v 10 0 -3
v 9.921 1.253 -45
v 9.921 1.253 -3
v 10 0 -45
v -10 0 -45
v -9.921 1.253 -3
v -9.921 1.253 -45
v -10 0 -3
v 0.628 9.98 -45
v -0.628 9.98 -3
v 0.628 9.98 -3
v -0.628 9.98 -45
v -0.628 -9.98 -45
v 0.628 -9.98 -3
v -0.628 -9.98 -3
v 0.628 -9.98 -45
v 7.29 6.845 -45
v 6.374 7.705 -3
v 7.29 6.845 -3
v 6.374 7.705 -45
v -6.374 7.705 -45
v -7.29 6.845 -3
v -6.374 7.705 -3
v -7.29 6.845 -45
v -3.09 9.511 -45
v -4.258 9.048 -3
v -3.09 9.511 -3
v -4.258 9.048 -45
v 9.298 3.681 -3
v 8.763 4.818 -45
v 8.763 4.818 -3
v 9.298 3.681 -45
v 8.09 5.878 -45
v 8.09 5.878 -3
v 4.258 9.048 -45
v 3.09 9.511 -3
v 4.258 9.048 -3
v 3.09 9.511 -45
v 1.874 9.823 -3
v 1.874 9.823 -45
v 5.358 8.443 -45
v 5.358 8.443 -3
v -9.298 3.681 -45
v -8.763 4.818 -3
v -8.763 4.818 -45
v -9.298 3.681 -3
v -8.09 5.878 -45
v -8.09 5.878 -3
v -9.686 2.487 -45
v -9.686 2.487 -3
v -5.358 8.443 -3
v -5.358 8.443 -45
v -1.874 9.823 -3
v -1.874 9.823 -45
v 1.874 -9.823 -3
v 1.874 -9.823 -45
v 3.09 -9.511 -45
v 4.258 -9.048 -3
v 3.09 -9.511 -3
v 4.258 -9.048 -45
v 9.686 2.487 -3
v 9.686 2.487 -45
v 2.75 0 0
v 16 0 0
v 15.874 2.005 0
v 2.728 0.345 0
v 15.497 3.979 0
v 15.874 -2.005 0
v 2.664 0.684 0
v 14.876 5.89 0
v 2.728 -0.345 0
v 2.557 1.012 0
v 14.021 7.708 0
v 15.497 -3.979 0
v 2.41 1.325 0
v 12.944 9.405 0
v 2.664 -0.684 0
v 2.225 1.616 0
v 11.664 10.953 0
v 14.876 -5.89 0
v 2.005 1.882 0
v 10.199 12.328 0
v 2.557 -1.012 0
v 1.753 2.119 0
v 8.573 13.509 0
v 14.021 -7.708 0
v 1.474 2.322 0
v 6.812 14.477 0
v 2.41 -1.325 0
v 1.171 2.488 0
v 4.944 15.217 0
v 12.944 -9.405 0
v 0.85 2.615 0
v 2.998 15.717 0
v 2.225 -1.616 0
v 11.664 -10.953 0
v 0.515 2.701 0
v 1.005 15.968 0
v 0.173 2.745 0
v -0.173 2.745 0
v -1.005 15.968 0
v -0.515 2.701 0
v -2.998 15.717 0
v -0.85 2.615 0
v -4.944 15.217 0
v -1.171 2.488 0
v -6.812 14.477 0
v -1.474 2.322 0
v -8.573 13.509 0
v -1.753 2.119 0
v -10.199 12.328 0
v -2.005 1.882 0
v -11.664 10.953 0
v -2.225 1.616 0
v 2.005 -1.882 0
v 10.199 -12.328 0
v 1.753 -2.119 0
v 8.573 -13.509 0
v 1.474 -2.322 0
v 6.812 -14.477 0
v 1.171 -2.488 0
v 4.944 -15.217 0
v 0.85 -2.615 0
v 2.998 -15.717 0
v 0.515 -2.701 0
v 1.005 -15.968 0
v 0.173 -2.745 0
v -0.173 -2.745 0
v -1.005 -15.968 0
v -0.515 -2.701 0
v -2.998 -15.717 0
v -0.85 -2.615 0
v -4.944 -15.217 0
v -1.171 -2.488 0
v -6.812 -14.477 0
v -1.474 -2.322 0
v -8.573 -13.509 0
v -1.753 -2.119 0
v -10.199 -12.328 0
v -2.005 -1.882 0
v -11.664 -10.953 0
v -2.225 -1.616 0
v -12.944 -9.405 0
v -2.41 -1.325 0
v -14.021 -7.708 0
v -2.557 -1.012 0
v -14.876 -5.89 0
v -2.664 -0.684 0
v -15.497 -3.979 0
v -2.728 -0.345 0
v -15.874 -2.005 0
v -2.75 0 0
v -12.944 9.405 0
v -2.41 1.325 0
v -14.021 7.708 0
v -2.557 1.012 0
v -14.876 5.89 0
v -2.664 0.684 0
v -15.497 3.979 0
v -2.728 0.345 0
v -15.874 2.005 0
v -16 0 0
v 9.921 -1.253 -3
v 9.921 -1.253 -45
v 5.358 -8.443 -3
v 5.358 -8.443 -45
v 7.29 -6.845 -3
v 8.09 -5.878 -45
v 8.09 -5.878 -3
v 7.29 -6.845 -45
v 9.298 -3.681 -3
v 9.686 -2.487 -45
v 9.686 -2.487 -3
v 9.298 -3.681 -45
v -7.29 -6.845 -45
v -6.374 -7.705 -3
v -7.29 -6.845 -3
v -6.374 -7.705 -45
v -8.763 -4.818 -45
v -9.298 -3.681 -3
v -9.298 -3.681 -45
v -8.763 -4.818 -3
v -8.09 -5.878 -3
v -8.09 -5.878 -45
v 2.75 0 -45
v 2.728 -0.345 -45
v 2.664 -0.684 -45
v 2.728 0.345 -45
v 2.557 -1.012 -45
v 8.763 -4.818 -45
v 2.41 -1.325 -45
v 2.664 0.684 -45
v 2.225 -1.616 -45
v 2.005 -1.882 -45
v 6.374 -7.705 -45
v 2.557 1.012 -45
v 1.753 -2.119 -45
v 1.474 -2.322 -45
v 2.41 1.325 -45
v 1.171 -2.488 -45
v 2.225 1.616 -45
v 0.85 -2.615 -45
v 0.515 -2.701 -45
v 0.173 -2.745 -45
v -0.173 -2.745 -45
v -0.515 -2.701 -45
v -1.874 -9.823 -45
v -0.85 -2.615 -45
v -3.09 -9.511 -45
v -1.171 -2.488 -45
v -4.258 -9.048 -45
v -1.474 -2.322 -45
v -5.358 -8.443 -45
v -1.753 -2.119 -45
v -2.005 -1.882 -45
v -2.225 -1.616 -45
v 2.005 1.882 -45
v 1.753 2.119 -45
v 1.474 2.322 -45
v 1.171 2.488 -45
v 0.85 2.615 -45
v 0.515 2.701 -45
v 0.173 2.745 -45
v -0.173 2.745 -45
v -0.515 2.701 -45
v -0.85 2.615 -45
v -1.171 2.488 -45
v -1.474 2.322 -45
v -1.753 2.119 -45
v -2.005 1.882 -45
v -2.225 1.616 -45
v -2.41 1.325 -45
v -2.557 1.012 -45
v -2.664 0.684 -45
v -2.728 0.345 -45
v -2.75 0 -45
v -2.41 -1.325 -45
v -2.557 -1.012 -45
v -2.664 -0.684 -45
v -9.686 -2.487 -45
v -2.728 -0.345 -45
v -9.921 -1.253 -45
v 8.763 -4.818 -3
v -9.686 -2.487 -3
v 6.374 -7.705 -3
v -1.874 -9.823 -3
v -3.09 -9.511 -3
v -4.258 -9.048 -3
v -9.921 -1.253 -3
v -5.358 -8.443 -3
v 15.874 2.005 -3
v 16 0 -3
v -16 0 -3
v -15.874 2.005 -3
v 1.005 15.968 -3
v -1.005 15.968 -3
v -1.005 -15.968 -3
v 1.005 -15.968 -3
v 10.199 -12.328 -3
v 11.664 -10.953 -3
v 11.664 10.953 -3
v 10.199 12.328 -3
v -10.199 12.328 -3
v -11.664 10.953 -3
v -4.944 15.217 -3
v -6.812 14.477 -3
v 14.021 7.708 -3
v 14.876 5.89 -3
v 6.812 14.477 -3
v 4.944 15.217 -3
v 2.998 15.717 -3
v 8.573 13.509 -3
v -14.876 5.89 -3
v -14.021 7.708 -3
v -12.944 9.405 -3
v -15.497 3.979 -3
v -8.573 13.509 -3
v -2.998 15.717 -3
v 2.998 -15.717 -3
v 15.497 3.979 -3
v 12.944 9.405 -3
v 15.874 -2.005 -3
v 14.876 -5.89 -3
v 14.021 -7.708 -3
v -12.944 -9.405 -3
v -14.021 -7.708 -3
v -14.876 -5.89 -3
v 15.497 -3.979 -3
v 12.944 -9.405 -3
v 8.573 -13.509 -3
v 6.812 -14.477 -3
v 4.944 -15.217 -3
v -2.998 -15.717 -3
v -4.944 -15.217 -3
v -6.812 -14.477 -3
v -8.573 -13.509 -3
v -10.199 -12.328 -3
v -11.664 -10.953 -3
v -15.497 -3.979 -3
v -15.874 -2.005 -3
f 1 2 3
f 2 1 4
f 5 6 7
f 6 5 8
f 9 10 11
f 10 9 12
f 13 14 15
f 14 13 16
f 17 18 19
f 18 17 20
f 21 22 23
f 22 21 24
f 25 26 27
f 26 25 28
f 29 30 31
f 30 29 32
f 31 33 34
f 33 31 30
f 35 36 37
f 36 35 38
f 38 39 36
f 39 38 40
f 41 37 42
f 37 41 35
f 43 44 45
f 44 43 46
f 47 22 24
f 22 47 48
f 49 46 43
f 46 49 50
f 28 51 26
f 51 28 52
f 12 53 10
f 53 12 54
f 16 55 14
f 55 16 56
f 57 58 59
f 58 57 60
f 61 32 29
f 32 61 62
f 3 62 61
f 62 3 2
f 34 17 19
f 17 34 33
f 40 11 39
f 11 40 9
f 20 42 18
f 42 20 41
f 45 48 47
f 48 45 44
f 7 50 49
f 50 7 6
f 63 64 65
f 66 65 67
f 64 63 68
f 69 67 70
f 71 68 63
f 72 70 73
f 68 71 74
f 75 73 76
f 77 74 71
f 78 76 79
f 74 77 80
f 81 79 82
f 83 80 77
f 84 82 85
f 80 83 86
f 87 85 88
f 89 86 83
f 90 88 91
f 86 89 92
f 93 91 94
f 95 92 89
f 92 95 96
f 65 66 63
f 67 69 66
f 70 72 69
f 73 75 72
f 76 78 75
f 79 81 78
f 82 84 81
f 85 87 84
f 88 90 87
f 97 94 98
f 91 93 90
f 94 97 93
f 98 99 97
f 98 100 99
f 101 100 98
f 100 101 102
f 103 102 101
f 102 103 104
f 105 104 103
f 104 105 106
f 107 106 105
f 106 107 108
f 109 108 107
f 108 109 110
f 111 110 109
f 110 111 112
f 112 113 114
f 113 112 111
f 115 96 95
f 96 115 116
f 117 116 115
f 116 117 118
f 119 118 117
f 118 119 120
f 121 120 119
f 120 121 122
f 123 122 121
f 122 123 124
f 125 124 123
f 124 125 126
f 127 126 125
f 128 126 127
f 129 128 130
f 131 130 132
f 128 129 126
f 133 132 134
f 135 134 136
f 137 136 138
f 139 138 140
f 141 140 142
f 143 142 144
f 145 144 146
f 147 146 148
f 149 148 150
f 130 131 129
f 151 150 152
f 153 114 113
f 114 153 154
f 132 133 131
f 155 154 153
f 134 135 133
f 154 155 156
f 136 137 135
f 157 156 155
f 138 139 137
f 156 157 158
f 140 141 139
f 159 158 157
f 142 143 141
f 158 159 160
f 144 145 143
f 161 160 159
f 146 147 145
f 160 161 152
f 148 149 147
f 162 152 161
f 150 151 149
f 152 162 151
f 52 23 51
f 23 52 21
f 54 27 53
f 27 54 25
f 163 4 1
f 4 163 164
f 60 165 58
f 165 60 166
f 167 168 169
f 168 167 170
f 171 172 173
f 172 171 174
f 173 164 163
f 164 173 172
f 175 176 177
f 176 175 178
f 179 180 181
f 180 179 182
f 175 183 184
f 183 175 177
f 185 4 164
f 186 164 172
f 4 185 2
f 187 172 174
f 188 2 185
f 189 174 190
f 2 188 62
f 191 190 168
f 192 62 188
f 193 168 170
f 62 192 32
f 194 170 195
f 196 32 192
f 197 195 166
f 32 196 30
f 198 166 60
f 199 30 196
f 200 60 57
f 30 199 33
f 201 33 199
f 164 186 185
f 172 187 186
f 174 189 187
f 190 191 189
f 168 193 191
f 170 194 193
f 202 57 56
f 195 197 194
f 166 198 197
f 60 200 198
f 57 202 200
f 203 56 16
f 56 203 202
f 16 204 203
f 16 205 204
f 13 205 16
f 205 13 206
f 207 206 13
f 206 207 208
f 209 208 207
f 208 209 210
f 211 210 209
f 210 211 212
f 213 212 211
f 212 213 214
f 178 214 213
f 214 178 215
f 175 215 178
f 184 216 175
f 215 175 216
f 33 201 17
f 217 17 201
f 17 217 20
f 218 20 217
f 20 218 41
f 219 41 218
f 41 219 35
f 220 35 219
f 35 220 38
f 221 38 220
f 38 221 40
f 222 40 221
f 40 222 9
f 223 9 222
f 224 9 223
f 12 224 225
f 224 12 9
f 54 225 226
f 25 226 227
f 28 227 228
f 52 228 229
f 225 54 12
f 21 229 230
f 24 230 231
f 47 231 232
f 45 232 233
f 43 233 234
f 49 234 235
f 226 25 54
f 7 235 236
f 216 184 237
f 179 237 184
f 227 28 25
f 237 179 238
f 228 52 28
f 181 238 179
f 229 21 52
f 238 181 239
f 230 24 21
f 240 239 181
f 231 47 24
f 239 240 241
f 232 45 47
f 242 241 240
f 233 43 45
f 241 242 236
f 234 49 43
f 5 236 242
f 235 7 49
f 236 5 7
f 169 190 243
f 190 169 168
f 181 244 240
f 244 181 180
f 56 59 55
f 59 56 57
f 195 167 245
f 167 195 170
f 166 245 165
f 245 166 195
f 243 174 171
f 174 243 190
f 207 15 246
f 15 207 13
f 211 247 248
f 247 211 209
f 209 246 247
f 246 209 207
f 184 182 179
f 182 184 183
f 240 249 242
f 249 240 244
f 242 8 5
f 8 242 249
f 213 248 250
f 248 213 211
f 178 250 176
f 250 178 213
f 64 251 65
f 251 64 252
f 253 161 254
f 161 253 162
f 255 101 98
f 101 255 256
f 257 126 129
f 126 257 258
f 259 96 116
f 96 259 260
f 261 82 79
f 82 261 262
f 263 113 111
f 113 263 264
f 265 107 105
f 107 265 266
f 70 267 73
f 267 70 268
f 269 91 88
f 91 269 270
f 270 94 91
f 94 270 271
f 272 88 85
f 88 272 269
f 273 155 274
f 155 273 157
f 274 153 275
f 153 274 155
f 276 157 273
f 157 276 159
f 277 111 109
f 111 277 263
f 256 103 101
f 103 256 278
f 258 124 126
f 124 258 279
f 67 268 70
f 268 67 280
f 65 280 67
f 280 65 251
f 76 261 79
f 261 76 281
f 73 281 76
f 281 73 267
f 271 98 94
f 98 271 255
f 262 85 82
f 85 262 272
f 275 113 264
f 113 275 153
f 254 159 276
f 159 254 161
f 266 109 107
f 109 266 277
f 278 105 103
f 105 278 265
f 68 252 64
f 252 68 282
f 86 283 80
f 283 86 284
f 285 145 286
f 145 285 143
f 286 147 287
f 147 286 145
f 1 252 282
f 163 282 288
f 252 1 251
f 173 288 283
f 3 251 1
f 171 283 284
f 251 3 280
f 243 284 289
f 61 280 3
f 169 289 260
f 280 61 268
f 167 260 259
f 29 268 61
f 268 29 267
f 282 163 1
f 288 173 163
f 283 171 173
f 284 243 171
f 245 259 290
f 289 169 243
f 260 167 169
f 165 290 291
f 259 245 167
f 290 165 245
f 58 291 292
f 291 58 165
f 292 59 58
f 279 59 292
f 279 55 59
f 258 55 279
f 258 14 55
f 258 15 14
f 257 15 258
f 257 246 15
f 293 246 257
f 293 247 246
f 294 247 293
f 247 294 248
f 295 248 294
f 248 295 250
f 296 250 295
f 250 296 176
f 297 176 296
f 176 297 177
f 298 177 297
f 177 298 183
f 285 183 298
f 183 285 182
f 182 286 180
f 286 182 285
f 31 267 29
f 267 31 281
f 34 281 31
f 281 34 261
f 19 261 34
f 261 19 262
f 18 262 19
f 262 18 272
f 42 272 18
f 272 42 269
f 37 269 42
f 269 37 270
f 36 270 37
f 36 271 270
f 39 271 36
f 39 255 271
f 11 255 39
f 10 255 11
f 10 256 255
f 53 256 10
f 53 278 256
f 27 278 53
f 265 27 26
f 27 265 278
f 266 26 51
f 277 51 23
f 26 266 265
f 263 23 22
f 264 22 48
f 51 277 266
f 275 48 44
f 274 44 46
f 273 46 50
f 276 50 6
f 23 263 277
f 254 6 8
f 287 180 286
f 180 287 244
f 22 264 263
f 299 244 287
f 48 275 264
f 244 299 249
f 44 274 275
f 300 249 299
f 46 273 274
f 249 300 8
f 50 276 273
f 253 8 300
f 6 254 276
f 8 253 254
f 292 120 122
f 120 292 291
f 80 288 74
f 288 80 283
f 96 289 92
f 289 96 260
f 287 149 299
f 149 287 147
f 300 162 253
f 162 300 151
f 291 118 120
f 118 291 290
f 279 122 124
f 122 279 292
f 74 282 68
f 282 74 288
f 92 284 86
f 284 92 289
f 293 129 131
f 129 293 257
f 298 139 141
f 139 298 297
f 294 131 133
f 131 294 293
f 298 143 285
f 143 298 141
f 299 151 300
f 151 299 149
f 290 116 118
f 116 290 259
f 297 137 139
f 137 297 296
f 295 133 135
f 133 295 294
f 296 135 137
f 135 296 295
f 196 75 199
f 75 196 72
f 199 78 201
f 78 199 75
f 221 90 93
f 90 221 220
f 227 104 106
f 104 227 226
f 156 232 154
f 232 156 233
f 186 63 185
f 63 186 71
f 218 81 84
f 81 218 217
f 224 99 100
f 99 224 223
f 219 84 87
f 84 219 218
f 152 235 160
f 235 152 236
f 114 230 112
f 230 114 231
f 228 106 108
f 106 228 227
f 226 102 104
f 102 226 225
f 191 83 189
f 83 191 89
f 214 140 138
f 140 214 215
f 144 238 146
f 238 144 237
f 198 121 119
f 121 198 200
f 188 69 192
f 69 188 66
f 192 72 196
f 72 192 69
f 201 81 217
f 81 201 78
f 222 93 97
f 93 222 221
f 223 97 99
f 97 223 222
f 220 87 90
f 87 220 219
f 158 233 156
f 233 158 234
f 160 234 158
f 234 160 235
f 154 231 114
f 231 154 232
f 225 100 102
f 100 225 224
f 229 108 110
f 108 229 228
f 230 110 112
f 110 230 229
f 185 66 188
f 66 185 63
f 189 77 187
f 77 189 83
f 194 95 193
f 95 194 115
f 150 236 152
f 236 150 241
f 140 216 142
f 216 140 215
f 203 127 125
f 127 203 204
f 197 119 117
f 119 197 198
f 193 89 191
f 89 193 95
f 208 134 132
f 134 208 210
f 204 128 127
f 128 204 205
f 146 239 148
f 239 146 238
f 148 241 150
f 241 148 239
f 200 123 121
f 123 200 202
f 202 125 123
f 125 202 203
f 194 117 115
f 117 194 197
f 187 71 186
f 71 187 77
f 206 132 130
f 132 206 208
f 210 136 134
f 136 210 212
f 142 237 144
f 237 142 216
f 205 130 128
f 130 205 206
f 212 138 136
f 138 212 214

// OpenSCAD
$fn = 50;


difference() {
	union() {
		translate(v = [0, 0, -45.0000000000]) {
			cylinder(h = 45, r = 10.0000000000);
		}
		translate(v = [0, 0, -3.0000000000]) {
			cylinder(h = 3, r = 16.0000000000);
		}
	}
	union() {
		#translate(v = [0, 0, -45]) {
			cylinder(h = 45, r = 2.7500000000);
		}
	}
}
